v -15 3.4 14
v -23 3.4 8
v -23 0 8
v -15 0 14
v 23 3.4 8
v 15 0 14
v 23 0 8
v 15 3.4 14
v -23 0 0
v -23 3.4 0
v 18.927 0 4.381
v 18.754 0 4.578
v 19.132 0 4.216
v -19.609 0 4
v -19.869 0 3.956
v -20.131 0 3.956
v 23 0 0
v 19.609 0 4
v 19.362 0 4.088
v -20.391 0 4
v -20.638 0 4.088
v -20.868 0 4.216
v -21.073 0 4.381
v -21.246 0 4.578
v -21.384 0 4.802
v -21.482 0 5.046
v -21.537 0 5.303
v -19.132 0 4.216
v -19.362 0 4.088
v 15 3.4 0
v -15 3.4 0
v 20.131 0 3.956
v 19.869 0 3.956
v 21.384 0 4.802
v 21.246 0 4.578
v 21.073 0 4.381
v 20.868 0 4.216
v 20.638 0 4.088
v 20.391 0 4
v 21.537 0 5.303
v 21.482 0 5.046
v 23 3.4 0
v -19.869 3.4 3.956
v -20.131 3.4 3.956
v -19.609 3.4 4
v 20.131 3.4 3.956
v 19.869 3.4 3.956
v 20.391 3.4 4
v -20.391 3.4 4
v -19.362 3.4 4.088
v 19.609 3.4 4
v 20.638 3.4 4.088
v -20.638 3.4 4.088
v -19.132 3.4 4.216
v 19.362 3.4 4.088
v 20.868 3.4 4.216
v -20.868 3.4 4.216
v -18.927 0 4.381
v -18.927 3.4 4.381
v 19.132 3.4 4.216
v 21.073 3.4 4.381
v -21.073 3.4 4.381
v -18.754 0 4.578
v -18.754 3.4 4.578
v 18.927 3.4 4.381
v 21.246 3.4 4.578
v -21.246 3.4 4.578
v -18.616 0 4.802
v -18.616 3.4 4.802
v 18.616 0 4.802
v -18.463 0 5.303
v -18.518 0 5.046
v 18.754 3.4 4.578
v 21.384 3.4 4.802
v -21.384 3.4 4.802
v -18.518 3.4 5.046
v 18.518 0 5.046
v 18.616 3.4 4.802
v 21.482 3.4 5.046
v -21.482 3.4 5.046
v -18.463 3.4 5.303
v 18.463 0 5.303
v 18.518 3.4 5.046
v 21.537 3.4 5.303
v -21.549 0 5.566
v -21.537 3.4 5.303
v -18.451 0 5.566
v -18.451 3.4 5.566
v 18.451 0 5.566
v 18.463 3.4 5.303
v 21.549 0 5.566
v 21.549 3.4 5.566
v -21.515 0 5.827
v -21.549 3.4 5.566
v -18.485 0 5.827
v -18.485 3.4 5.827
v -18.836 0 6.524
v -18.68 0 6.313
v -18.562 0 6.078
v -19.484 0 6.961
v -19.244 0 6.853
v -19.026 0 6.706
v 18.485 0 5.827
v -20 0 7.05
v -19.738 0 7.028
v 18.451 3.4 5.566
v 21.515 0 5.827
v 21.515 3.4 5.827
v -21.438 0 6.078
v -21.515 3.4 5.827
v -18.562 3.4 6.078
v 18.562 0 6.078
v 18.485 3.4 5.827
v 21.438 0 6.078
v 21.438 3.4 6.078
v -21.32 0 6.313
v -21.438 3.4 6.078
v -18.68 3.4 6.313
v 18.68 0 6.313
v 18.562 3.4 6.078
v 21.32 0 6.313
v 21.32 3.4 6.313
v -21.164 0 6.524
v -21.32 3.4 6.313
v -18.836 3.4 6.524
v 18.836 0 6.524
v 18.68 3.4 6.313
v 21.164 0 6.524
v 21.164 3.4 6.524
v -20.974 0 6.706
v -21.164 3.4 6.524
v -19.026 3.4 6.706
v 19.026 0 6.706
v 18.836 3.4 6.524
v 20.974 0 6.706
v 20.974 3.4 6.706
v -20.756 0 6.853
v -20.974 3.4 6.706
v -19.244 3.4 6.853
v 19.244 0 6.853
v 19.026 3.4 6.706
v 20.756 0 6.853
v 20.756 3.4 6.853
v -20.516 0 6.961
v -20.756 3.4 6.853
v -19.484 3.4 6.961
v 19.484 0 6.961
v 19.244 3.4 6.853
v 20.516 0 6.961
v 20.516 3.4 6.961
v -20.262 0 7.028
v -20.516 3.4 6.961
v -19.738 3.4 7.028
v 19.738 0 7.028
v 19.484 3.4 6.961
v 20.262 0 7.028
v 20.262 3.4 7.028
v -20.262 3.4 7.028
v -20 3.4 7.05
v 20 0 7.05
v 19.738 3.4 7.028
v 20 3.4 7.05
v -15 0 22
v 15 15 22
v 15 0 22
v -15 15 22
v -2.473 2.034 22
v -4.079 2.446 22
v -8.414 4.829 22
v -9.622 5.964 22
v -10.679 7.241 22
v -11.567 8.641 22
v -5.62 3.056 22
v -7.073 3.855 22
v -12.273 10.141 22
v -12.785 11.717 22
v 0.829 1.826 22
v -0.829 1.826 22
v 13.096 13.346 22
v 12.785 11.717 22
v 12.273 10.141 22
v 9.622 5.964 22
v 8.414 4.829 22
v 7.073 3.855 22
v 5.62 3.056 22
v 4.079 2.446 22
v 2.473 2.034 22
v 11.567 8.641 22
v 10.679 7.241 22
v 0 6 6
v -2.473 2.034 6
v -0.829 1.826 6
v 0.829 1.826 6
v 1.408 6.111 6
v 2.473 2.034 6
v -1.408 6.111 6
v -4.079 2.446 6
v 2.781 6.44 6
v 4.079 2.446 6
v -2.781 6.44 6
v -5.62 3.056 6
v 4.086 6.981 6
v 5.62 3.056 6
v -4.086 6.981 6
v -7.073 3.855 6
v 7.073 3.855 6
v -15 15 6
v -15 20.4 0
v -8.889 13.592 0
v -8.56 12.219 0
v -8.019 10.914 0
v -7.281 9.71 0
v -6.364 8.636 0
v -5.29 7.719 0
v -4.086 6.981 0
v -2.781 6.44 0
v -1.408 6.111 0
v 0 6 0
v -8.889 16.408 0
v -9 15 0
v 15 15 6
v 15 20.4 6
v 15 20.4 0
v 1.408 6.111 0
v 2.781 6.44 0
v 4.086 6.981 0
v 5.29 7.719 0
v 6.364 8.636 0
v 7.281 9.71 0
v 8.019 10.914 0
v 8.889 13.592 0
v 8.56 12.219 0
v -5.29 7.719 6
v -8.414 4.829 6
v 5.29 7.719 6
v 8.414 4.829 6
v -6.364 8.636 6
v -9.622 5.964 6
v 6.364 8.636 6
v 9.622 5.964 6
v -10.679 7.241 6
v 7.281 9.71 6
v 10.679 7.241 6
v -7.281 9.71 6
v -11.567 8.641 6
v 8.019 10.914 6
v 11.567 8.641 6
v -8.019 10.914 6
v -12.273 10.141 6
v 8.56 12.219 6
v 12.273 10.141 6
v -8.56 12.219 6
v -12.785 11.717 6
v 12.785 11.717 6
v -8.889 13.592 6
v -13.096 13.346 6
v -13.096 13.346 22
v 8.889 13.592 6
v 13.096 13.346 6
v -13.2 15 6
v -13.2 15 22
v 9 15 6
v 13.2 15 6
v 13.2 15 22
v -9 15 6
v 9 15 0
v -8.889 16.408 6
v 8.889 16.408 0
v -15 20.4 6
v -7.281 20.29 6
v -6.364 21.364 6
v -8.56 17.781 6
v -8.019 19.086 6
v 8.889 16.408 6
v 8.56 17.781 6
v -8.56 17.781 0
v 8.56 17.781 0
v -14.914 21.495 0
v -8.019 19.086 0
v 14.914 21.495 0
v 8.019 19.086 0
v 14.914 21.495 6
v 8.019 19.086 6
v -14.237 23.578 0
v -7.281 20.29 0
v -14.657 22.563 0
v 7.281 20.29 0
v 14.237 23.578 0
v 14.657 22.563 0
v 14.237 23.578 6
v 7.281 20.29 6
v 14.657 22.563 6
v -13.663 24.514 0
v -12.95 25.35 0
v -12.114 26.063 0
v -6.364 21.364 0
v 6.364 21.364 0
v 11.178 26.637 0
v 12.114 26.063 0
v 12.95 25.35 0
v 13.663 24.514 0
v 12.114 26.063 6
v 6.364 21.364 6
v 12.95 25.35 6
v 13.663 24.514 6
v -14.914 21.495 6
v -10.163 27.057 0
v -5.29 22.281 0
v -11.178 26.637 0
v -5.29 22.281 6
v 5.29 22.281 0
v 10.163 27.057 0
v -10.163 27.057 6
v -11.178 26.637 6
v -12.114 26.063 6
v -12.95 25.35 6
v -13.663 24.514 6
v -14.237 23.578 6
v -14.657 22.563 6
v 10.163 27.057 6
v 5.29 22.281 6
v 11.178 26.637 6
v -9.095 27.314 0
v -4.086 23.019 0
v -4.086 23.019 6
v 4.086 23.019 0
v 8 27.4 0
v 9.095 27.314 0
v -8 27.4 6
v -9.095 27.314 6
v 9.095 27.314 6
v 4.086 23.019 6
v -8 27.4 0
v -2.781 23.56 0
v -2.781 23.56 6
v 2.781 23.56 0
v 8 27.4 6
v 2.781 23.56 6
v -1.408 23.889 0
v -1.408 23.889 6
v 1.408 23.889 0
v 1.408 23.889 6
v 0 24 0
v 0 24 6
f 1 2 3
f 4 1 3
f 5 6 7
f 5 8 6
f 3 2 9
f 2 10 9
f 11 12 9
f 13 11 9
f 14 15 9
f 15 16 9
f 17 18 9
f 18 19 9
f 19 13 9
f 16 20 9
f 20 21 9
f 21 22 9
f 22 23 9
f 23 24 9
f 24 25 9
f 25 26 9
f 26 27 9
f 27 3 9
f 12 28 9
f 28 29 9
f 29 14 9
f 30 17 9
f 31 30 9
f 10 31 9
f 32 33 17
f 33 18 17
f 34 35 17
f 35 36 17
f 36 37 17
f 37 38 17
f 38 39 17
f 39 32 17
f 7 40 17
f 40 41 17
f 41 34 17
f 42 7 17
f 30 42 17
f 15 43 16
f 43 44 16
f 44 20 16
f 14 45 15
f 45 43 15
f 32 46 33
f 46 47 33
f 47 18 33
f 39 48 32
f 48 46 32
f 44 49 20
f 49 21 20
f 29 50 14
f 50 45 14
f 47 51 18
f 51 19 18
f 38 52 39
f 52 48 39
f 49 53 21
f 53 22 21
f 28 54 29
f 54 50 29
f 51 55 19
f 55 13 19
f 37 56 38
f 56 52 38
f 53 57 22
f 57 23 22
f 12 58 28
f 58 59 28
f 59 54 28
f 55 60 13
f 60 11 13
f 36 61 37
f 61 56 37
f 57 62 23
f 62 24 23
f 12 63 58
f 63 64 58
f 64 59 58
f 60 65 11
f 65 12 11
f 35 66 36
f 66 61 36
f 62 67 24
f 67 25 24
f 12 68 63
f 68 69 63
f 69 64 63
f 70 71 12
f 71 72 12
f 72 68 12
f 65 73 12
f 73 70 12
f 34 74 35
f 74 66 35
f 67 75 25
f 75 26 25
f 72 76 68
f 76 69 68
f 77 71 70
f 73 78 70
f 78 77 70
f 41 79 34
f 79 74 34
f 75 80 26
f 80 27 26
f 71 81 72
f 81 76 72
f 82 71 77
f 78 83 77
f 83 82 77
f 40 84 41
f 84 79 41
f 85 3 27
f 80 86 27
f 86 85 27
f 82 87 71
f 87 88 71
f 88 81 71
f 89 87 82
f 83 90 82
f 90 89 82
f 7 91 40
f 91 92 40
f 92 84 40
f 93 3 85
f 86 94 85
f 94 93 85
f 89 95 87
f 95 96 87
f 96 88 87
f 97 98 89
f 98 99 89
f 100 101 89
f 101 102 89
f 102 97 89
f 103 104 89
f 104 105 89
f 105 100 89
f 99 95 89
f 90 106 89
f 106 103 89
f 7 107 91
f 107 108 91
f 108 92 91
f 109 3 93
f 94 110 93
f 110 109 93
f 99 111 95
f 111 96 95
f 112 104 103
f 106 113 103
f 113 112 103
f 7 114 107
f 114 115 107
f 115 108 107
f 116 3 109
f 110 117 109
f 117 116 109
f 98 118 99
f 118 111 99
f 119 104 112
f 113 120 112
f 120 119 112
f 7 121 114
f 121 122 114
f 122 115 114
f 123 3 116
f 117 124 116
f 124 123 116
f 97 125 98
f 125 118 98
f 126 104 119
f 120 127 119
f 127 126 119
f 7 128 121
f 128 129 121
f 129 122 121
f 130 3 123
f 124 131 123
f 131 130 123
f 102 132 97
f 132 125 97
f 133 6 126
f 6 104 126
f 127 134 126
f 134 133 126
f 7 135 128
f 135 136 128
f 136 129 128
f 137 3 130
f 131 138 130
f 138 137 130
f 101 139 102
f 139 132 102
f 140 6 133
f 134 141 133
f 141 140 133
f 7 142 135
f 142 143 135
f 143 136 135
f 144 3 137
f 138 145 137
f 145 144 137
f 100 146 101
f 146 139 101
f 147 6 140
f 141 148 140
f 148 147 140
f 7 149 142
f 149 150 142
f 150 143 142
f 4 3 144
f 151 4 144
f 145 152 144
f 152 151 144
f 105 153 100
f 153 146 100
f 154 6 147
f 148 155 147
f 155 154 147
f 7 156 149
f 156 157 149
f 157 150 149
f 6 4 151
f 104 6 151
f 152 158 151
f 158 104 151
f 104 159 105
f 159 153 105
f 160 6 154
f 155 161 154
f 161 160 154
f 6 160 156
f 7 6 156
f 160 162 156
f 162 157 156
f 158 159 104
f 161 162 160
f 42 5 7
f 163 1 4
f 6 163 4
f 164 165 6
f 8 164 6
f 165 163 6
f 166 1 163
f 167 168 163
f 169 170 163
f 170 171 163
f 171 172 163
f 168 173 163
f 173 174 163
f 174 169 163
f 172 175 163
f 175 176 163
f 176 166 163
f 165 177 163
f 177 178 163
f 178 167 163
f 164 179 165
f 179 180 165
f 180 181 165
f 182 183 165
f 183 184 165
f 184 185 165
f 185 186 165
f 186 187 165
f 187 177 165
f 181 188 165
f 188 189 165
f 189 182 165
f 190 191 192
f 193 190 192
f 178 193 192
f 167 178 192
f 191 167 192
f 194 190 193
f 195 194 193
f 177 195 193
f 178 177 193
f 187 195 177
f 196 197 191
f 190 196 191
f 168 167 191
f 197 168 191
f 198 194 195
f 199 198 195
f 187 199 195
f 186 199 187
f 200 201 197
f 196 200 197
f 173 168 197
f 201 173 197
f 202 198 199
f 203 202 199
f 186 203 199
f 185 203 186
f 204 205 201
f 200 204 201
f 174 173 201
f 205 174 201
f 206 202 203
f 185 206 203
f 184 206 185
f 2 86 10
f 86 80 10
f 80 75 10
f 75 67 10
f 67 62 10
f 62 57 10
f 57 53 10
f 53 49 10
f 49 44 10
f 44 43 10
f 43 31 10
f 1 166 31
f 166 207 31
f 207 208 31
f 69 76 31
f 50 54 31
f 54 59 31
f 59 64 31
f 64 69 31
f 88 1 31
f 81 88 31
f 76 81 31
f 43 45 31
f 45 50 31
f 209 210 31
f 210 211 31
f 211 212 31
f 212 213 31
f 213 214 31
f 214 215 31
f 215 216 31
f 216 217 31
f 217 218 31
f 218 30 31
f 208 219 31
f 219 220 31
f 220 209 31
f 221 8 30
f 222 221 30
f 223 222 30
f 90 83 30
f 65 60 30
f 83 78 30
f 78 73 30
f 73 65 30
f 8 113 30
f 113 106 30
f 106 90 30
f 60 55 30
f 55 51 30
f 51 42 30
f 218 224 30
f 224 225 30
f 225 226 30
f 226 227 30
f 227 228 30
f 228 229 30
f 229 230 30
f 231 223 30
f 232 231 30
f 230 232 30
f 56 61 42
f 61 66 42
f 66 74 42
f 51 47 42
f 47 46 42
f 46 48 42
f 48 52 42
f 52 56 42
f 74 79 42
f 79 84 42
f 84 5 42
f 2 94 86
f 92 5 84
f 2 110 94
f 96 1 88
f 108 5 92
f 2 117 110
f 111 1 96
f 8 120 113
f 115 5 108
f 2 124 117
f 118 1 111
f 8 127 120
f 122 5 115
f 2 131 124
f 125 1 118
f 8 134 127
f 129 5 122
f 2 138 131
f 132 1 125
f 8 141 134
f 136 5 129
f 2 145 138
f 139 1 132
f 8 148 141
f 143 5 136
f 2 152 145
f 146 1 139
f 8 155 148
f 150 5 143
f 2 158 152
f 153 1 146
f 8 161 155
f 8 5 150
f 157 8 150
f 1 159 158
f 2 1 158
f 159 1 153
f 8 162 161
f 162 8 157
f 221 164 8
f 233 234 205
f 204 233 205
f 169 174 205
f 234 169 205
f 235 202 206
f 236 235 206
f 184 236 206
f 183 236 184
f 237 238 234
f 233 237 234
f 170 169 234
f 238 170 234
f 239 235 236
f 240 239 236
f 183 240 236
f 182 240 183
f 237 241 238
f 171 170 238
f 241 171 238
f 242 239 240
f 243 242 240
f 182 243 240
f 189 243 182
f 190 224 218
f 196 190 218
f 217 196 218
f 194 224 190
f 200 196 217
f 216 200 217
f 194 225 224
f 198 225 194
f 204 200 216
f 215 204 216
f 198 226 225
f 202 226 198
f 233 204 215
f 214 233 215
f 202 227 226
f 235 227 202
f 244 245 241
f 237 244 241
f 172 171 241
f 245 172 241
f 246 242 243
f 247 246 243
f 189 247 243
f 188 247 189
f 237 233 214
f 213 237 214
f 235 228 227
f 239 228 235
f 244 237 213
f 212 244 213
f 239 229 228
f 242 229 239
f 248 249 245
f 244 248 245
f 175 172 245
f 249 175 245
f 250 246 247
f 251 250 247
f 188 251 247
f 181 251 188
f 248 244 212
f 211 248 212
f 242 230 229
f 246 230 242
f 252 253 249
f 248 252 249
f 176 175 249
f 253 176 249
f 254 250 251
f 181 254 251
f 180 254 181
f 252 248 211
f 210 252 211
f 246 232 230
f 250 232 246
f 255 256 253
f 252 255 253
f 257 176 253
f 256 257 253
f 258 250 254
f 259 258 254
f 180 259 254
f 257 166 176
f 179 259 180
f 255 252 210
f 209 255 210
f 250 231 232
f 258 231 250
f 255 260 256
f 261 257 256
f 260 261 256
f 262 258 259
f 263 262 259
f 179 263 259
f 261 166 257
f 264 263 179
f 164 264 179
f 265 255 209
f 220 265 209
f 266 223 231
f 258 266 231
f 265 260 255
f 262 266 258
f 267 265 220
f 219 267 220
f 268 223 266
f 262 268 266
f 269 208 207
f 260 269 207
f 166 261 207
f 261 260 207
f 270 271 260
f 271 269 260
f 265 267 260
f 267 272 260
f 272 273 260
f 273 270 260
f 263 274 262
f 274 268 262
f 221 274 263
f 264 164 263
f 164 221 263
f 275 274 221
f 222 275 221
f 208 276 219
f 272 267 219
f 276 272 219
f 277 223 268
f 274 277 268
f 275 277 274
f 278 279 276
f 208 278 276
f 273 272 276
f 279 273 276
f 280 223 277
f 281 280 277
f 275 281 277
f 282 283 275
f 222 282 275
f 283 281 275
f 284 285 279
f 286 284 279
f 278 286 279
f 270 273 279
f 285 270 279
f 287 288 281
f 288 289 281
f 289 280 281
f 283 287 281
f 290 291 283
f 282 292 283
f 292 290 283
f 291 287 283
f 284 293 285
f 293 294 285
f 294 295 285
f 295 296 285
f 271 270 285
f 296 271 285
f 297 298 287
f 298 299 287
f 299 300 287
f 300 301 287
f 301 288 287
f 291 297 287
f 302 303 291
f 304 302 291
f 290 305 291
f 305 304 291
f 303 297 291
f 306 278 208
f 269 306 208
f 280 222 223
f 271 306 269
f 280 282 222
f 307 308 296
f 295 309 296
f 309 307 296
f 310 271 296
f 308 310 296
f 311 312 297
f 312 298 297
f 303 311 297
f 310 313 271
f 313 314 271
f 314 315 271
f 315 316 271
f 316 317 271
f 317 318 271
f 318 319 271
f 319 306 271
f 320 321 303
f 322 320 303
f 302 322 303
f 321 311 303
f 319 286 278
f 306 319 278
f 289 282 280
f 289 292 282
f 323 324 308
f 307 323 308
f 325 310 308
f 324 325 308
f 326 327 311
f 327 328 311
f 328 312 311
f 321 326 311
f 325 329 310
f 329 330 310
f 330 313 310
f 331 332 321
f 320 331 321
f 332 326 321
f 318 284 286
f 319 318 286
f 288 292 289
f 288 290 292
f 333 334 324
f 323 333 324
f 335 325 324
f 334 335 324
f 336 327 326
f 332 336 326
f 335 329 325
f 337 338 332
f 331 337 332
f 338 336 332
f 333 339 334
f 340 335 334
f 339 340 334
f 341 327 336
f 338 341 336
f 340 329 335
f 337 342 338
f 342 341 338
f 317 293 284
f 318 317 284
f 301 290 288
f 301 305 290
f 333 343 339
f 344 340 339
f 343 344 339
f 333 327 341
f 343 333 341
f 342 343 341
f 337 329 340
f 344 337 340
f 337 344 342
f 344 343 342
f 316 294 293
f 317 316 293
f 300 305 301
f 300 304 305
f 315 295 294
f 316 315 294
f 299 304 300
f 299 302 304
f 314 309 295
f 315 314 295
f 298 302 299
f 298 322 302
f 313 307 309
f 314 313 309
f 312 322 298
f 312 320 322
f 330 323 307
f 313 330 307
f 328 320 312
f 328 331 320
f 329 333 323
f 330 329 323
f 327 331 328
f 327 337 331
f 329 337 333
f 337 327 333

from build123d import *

# Parameters (mm, degrees)
BOSS_EXTRUDE1_DEPTH = 6
SKETCH2_R           = 9
CUT_EXTRUDE1_DEPTH  = 6
FILLET1_R           = 7
BOSS_EXTRUDE2_DEPTH = 16
SKETCH5_W           = 8
SKETCH5_H           = 3.4
BOSS_EXTRUDE3_DEPTH = 2
SKETCH6_R           = 1.55
CUT_EXTRUDE3_DEPTH  = 40.862262856
BOSS_EXTRUDE5_DEPTH = 3.4


with BuildPart() as part:
    # Sketch1 → Boss-Extrude1 (new body)
    with BuildSketch(Plane.XY):
        Polygon((-23, 0), (23, 0), (23, 3.4), (15, 3.4), (15, 27.4), (-15, 27.4), (-15, 3.4), (-23, 3.4), align=None)
    extrude(amount=BOSS_EXTRUDE1_DEPTH)

    # Sketch2 → Cut-Extrude1 (cut)
    with BuildSketch(Plane(origin=(0, 0, 0), x_dir=(-1, 0, 0), z_dir=(0, 0, -1))):
        with Locations((0, 15)):
            Circle(SKETCH2_R)
    extrude(amount=-CUT_EXTRUDE1_DEPTH, mode=Mode.SUBTRACT)

    # Fillet1
    fillet1_edges = [part.edges().sort_by_distance(p)[0] for p in [
        (-15, 27.4, 3),
        (15, 27.4, 3),
    ]]
    fillet(fillet1_edges, radius=FILLET1_R)

    # Sketch4 → Boss-Extrude2 (add)
    with BuildSketch(Plane.XY.offset(6)):
        with BuildLine():
            Line((-15, 0), (15, 0))
            Line((15, 0), (15, 15))
            Line((15, 15), (13.2, 15))
            ThreePointArc((13.2, 15), (0, 1.8), (-13.2, 15))
            Line((-13.2, 15), (-15, 15))
            Line((-15, 15), (-15, 0))
        make_face()
    extrude(amount=BOSS_EXTRUDE2_DEPTH)

    # Sketch5 → Boss-Extrude3 (add)
    with BuildSketch(Plane.XY.offset(6)):
        with Locations((-19, 1.7)):
            Rectangle(SKETCH5_W, SKETCH5_H)
        with Locations((19, 1.7)):
            Rectangle(SKETCH5_W, SKETCH5_H)
    extrude(amount=BOSS_EXTRUDE3_DEPTH)

    # Sketch6 → Cut-Extrude3 (cut, through all)
    with BuildSketch(Plane(origin=(0, 3.4, 0), x_dir=(1, 0, 0), z_dir=(0, 1, 0))):
        with Locations(Location((20, -5.5, 0), (0, 0, 270))):
            Circle(SKETCH6_R)
        with Locations(Location((-20, -5.5, 0), (0, 0, 270))):
            Circle(SKETCH6_R)
    extrude(amount=-CUT_EXTRUDE3_DEPTH, mode=Mode.SUBTRACT)

    # Sketch8 → Boss-Extrude5 (add)
    with BuildSketch(Plane(origin=(0, 0, 0), x_dir=(1, 0, 0), z_dir=(0, 1, 0))):
        Polygon((-23, -8), (-15, -14), (-15, -8), align=None)
        Polygon((15, -14), (23, -8), (15, -8), align=None)
    extrude(amount=BOSS_EXTRUDE5_DEPTH)


solid = part.part
